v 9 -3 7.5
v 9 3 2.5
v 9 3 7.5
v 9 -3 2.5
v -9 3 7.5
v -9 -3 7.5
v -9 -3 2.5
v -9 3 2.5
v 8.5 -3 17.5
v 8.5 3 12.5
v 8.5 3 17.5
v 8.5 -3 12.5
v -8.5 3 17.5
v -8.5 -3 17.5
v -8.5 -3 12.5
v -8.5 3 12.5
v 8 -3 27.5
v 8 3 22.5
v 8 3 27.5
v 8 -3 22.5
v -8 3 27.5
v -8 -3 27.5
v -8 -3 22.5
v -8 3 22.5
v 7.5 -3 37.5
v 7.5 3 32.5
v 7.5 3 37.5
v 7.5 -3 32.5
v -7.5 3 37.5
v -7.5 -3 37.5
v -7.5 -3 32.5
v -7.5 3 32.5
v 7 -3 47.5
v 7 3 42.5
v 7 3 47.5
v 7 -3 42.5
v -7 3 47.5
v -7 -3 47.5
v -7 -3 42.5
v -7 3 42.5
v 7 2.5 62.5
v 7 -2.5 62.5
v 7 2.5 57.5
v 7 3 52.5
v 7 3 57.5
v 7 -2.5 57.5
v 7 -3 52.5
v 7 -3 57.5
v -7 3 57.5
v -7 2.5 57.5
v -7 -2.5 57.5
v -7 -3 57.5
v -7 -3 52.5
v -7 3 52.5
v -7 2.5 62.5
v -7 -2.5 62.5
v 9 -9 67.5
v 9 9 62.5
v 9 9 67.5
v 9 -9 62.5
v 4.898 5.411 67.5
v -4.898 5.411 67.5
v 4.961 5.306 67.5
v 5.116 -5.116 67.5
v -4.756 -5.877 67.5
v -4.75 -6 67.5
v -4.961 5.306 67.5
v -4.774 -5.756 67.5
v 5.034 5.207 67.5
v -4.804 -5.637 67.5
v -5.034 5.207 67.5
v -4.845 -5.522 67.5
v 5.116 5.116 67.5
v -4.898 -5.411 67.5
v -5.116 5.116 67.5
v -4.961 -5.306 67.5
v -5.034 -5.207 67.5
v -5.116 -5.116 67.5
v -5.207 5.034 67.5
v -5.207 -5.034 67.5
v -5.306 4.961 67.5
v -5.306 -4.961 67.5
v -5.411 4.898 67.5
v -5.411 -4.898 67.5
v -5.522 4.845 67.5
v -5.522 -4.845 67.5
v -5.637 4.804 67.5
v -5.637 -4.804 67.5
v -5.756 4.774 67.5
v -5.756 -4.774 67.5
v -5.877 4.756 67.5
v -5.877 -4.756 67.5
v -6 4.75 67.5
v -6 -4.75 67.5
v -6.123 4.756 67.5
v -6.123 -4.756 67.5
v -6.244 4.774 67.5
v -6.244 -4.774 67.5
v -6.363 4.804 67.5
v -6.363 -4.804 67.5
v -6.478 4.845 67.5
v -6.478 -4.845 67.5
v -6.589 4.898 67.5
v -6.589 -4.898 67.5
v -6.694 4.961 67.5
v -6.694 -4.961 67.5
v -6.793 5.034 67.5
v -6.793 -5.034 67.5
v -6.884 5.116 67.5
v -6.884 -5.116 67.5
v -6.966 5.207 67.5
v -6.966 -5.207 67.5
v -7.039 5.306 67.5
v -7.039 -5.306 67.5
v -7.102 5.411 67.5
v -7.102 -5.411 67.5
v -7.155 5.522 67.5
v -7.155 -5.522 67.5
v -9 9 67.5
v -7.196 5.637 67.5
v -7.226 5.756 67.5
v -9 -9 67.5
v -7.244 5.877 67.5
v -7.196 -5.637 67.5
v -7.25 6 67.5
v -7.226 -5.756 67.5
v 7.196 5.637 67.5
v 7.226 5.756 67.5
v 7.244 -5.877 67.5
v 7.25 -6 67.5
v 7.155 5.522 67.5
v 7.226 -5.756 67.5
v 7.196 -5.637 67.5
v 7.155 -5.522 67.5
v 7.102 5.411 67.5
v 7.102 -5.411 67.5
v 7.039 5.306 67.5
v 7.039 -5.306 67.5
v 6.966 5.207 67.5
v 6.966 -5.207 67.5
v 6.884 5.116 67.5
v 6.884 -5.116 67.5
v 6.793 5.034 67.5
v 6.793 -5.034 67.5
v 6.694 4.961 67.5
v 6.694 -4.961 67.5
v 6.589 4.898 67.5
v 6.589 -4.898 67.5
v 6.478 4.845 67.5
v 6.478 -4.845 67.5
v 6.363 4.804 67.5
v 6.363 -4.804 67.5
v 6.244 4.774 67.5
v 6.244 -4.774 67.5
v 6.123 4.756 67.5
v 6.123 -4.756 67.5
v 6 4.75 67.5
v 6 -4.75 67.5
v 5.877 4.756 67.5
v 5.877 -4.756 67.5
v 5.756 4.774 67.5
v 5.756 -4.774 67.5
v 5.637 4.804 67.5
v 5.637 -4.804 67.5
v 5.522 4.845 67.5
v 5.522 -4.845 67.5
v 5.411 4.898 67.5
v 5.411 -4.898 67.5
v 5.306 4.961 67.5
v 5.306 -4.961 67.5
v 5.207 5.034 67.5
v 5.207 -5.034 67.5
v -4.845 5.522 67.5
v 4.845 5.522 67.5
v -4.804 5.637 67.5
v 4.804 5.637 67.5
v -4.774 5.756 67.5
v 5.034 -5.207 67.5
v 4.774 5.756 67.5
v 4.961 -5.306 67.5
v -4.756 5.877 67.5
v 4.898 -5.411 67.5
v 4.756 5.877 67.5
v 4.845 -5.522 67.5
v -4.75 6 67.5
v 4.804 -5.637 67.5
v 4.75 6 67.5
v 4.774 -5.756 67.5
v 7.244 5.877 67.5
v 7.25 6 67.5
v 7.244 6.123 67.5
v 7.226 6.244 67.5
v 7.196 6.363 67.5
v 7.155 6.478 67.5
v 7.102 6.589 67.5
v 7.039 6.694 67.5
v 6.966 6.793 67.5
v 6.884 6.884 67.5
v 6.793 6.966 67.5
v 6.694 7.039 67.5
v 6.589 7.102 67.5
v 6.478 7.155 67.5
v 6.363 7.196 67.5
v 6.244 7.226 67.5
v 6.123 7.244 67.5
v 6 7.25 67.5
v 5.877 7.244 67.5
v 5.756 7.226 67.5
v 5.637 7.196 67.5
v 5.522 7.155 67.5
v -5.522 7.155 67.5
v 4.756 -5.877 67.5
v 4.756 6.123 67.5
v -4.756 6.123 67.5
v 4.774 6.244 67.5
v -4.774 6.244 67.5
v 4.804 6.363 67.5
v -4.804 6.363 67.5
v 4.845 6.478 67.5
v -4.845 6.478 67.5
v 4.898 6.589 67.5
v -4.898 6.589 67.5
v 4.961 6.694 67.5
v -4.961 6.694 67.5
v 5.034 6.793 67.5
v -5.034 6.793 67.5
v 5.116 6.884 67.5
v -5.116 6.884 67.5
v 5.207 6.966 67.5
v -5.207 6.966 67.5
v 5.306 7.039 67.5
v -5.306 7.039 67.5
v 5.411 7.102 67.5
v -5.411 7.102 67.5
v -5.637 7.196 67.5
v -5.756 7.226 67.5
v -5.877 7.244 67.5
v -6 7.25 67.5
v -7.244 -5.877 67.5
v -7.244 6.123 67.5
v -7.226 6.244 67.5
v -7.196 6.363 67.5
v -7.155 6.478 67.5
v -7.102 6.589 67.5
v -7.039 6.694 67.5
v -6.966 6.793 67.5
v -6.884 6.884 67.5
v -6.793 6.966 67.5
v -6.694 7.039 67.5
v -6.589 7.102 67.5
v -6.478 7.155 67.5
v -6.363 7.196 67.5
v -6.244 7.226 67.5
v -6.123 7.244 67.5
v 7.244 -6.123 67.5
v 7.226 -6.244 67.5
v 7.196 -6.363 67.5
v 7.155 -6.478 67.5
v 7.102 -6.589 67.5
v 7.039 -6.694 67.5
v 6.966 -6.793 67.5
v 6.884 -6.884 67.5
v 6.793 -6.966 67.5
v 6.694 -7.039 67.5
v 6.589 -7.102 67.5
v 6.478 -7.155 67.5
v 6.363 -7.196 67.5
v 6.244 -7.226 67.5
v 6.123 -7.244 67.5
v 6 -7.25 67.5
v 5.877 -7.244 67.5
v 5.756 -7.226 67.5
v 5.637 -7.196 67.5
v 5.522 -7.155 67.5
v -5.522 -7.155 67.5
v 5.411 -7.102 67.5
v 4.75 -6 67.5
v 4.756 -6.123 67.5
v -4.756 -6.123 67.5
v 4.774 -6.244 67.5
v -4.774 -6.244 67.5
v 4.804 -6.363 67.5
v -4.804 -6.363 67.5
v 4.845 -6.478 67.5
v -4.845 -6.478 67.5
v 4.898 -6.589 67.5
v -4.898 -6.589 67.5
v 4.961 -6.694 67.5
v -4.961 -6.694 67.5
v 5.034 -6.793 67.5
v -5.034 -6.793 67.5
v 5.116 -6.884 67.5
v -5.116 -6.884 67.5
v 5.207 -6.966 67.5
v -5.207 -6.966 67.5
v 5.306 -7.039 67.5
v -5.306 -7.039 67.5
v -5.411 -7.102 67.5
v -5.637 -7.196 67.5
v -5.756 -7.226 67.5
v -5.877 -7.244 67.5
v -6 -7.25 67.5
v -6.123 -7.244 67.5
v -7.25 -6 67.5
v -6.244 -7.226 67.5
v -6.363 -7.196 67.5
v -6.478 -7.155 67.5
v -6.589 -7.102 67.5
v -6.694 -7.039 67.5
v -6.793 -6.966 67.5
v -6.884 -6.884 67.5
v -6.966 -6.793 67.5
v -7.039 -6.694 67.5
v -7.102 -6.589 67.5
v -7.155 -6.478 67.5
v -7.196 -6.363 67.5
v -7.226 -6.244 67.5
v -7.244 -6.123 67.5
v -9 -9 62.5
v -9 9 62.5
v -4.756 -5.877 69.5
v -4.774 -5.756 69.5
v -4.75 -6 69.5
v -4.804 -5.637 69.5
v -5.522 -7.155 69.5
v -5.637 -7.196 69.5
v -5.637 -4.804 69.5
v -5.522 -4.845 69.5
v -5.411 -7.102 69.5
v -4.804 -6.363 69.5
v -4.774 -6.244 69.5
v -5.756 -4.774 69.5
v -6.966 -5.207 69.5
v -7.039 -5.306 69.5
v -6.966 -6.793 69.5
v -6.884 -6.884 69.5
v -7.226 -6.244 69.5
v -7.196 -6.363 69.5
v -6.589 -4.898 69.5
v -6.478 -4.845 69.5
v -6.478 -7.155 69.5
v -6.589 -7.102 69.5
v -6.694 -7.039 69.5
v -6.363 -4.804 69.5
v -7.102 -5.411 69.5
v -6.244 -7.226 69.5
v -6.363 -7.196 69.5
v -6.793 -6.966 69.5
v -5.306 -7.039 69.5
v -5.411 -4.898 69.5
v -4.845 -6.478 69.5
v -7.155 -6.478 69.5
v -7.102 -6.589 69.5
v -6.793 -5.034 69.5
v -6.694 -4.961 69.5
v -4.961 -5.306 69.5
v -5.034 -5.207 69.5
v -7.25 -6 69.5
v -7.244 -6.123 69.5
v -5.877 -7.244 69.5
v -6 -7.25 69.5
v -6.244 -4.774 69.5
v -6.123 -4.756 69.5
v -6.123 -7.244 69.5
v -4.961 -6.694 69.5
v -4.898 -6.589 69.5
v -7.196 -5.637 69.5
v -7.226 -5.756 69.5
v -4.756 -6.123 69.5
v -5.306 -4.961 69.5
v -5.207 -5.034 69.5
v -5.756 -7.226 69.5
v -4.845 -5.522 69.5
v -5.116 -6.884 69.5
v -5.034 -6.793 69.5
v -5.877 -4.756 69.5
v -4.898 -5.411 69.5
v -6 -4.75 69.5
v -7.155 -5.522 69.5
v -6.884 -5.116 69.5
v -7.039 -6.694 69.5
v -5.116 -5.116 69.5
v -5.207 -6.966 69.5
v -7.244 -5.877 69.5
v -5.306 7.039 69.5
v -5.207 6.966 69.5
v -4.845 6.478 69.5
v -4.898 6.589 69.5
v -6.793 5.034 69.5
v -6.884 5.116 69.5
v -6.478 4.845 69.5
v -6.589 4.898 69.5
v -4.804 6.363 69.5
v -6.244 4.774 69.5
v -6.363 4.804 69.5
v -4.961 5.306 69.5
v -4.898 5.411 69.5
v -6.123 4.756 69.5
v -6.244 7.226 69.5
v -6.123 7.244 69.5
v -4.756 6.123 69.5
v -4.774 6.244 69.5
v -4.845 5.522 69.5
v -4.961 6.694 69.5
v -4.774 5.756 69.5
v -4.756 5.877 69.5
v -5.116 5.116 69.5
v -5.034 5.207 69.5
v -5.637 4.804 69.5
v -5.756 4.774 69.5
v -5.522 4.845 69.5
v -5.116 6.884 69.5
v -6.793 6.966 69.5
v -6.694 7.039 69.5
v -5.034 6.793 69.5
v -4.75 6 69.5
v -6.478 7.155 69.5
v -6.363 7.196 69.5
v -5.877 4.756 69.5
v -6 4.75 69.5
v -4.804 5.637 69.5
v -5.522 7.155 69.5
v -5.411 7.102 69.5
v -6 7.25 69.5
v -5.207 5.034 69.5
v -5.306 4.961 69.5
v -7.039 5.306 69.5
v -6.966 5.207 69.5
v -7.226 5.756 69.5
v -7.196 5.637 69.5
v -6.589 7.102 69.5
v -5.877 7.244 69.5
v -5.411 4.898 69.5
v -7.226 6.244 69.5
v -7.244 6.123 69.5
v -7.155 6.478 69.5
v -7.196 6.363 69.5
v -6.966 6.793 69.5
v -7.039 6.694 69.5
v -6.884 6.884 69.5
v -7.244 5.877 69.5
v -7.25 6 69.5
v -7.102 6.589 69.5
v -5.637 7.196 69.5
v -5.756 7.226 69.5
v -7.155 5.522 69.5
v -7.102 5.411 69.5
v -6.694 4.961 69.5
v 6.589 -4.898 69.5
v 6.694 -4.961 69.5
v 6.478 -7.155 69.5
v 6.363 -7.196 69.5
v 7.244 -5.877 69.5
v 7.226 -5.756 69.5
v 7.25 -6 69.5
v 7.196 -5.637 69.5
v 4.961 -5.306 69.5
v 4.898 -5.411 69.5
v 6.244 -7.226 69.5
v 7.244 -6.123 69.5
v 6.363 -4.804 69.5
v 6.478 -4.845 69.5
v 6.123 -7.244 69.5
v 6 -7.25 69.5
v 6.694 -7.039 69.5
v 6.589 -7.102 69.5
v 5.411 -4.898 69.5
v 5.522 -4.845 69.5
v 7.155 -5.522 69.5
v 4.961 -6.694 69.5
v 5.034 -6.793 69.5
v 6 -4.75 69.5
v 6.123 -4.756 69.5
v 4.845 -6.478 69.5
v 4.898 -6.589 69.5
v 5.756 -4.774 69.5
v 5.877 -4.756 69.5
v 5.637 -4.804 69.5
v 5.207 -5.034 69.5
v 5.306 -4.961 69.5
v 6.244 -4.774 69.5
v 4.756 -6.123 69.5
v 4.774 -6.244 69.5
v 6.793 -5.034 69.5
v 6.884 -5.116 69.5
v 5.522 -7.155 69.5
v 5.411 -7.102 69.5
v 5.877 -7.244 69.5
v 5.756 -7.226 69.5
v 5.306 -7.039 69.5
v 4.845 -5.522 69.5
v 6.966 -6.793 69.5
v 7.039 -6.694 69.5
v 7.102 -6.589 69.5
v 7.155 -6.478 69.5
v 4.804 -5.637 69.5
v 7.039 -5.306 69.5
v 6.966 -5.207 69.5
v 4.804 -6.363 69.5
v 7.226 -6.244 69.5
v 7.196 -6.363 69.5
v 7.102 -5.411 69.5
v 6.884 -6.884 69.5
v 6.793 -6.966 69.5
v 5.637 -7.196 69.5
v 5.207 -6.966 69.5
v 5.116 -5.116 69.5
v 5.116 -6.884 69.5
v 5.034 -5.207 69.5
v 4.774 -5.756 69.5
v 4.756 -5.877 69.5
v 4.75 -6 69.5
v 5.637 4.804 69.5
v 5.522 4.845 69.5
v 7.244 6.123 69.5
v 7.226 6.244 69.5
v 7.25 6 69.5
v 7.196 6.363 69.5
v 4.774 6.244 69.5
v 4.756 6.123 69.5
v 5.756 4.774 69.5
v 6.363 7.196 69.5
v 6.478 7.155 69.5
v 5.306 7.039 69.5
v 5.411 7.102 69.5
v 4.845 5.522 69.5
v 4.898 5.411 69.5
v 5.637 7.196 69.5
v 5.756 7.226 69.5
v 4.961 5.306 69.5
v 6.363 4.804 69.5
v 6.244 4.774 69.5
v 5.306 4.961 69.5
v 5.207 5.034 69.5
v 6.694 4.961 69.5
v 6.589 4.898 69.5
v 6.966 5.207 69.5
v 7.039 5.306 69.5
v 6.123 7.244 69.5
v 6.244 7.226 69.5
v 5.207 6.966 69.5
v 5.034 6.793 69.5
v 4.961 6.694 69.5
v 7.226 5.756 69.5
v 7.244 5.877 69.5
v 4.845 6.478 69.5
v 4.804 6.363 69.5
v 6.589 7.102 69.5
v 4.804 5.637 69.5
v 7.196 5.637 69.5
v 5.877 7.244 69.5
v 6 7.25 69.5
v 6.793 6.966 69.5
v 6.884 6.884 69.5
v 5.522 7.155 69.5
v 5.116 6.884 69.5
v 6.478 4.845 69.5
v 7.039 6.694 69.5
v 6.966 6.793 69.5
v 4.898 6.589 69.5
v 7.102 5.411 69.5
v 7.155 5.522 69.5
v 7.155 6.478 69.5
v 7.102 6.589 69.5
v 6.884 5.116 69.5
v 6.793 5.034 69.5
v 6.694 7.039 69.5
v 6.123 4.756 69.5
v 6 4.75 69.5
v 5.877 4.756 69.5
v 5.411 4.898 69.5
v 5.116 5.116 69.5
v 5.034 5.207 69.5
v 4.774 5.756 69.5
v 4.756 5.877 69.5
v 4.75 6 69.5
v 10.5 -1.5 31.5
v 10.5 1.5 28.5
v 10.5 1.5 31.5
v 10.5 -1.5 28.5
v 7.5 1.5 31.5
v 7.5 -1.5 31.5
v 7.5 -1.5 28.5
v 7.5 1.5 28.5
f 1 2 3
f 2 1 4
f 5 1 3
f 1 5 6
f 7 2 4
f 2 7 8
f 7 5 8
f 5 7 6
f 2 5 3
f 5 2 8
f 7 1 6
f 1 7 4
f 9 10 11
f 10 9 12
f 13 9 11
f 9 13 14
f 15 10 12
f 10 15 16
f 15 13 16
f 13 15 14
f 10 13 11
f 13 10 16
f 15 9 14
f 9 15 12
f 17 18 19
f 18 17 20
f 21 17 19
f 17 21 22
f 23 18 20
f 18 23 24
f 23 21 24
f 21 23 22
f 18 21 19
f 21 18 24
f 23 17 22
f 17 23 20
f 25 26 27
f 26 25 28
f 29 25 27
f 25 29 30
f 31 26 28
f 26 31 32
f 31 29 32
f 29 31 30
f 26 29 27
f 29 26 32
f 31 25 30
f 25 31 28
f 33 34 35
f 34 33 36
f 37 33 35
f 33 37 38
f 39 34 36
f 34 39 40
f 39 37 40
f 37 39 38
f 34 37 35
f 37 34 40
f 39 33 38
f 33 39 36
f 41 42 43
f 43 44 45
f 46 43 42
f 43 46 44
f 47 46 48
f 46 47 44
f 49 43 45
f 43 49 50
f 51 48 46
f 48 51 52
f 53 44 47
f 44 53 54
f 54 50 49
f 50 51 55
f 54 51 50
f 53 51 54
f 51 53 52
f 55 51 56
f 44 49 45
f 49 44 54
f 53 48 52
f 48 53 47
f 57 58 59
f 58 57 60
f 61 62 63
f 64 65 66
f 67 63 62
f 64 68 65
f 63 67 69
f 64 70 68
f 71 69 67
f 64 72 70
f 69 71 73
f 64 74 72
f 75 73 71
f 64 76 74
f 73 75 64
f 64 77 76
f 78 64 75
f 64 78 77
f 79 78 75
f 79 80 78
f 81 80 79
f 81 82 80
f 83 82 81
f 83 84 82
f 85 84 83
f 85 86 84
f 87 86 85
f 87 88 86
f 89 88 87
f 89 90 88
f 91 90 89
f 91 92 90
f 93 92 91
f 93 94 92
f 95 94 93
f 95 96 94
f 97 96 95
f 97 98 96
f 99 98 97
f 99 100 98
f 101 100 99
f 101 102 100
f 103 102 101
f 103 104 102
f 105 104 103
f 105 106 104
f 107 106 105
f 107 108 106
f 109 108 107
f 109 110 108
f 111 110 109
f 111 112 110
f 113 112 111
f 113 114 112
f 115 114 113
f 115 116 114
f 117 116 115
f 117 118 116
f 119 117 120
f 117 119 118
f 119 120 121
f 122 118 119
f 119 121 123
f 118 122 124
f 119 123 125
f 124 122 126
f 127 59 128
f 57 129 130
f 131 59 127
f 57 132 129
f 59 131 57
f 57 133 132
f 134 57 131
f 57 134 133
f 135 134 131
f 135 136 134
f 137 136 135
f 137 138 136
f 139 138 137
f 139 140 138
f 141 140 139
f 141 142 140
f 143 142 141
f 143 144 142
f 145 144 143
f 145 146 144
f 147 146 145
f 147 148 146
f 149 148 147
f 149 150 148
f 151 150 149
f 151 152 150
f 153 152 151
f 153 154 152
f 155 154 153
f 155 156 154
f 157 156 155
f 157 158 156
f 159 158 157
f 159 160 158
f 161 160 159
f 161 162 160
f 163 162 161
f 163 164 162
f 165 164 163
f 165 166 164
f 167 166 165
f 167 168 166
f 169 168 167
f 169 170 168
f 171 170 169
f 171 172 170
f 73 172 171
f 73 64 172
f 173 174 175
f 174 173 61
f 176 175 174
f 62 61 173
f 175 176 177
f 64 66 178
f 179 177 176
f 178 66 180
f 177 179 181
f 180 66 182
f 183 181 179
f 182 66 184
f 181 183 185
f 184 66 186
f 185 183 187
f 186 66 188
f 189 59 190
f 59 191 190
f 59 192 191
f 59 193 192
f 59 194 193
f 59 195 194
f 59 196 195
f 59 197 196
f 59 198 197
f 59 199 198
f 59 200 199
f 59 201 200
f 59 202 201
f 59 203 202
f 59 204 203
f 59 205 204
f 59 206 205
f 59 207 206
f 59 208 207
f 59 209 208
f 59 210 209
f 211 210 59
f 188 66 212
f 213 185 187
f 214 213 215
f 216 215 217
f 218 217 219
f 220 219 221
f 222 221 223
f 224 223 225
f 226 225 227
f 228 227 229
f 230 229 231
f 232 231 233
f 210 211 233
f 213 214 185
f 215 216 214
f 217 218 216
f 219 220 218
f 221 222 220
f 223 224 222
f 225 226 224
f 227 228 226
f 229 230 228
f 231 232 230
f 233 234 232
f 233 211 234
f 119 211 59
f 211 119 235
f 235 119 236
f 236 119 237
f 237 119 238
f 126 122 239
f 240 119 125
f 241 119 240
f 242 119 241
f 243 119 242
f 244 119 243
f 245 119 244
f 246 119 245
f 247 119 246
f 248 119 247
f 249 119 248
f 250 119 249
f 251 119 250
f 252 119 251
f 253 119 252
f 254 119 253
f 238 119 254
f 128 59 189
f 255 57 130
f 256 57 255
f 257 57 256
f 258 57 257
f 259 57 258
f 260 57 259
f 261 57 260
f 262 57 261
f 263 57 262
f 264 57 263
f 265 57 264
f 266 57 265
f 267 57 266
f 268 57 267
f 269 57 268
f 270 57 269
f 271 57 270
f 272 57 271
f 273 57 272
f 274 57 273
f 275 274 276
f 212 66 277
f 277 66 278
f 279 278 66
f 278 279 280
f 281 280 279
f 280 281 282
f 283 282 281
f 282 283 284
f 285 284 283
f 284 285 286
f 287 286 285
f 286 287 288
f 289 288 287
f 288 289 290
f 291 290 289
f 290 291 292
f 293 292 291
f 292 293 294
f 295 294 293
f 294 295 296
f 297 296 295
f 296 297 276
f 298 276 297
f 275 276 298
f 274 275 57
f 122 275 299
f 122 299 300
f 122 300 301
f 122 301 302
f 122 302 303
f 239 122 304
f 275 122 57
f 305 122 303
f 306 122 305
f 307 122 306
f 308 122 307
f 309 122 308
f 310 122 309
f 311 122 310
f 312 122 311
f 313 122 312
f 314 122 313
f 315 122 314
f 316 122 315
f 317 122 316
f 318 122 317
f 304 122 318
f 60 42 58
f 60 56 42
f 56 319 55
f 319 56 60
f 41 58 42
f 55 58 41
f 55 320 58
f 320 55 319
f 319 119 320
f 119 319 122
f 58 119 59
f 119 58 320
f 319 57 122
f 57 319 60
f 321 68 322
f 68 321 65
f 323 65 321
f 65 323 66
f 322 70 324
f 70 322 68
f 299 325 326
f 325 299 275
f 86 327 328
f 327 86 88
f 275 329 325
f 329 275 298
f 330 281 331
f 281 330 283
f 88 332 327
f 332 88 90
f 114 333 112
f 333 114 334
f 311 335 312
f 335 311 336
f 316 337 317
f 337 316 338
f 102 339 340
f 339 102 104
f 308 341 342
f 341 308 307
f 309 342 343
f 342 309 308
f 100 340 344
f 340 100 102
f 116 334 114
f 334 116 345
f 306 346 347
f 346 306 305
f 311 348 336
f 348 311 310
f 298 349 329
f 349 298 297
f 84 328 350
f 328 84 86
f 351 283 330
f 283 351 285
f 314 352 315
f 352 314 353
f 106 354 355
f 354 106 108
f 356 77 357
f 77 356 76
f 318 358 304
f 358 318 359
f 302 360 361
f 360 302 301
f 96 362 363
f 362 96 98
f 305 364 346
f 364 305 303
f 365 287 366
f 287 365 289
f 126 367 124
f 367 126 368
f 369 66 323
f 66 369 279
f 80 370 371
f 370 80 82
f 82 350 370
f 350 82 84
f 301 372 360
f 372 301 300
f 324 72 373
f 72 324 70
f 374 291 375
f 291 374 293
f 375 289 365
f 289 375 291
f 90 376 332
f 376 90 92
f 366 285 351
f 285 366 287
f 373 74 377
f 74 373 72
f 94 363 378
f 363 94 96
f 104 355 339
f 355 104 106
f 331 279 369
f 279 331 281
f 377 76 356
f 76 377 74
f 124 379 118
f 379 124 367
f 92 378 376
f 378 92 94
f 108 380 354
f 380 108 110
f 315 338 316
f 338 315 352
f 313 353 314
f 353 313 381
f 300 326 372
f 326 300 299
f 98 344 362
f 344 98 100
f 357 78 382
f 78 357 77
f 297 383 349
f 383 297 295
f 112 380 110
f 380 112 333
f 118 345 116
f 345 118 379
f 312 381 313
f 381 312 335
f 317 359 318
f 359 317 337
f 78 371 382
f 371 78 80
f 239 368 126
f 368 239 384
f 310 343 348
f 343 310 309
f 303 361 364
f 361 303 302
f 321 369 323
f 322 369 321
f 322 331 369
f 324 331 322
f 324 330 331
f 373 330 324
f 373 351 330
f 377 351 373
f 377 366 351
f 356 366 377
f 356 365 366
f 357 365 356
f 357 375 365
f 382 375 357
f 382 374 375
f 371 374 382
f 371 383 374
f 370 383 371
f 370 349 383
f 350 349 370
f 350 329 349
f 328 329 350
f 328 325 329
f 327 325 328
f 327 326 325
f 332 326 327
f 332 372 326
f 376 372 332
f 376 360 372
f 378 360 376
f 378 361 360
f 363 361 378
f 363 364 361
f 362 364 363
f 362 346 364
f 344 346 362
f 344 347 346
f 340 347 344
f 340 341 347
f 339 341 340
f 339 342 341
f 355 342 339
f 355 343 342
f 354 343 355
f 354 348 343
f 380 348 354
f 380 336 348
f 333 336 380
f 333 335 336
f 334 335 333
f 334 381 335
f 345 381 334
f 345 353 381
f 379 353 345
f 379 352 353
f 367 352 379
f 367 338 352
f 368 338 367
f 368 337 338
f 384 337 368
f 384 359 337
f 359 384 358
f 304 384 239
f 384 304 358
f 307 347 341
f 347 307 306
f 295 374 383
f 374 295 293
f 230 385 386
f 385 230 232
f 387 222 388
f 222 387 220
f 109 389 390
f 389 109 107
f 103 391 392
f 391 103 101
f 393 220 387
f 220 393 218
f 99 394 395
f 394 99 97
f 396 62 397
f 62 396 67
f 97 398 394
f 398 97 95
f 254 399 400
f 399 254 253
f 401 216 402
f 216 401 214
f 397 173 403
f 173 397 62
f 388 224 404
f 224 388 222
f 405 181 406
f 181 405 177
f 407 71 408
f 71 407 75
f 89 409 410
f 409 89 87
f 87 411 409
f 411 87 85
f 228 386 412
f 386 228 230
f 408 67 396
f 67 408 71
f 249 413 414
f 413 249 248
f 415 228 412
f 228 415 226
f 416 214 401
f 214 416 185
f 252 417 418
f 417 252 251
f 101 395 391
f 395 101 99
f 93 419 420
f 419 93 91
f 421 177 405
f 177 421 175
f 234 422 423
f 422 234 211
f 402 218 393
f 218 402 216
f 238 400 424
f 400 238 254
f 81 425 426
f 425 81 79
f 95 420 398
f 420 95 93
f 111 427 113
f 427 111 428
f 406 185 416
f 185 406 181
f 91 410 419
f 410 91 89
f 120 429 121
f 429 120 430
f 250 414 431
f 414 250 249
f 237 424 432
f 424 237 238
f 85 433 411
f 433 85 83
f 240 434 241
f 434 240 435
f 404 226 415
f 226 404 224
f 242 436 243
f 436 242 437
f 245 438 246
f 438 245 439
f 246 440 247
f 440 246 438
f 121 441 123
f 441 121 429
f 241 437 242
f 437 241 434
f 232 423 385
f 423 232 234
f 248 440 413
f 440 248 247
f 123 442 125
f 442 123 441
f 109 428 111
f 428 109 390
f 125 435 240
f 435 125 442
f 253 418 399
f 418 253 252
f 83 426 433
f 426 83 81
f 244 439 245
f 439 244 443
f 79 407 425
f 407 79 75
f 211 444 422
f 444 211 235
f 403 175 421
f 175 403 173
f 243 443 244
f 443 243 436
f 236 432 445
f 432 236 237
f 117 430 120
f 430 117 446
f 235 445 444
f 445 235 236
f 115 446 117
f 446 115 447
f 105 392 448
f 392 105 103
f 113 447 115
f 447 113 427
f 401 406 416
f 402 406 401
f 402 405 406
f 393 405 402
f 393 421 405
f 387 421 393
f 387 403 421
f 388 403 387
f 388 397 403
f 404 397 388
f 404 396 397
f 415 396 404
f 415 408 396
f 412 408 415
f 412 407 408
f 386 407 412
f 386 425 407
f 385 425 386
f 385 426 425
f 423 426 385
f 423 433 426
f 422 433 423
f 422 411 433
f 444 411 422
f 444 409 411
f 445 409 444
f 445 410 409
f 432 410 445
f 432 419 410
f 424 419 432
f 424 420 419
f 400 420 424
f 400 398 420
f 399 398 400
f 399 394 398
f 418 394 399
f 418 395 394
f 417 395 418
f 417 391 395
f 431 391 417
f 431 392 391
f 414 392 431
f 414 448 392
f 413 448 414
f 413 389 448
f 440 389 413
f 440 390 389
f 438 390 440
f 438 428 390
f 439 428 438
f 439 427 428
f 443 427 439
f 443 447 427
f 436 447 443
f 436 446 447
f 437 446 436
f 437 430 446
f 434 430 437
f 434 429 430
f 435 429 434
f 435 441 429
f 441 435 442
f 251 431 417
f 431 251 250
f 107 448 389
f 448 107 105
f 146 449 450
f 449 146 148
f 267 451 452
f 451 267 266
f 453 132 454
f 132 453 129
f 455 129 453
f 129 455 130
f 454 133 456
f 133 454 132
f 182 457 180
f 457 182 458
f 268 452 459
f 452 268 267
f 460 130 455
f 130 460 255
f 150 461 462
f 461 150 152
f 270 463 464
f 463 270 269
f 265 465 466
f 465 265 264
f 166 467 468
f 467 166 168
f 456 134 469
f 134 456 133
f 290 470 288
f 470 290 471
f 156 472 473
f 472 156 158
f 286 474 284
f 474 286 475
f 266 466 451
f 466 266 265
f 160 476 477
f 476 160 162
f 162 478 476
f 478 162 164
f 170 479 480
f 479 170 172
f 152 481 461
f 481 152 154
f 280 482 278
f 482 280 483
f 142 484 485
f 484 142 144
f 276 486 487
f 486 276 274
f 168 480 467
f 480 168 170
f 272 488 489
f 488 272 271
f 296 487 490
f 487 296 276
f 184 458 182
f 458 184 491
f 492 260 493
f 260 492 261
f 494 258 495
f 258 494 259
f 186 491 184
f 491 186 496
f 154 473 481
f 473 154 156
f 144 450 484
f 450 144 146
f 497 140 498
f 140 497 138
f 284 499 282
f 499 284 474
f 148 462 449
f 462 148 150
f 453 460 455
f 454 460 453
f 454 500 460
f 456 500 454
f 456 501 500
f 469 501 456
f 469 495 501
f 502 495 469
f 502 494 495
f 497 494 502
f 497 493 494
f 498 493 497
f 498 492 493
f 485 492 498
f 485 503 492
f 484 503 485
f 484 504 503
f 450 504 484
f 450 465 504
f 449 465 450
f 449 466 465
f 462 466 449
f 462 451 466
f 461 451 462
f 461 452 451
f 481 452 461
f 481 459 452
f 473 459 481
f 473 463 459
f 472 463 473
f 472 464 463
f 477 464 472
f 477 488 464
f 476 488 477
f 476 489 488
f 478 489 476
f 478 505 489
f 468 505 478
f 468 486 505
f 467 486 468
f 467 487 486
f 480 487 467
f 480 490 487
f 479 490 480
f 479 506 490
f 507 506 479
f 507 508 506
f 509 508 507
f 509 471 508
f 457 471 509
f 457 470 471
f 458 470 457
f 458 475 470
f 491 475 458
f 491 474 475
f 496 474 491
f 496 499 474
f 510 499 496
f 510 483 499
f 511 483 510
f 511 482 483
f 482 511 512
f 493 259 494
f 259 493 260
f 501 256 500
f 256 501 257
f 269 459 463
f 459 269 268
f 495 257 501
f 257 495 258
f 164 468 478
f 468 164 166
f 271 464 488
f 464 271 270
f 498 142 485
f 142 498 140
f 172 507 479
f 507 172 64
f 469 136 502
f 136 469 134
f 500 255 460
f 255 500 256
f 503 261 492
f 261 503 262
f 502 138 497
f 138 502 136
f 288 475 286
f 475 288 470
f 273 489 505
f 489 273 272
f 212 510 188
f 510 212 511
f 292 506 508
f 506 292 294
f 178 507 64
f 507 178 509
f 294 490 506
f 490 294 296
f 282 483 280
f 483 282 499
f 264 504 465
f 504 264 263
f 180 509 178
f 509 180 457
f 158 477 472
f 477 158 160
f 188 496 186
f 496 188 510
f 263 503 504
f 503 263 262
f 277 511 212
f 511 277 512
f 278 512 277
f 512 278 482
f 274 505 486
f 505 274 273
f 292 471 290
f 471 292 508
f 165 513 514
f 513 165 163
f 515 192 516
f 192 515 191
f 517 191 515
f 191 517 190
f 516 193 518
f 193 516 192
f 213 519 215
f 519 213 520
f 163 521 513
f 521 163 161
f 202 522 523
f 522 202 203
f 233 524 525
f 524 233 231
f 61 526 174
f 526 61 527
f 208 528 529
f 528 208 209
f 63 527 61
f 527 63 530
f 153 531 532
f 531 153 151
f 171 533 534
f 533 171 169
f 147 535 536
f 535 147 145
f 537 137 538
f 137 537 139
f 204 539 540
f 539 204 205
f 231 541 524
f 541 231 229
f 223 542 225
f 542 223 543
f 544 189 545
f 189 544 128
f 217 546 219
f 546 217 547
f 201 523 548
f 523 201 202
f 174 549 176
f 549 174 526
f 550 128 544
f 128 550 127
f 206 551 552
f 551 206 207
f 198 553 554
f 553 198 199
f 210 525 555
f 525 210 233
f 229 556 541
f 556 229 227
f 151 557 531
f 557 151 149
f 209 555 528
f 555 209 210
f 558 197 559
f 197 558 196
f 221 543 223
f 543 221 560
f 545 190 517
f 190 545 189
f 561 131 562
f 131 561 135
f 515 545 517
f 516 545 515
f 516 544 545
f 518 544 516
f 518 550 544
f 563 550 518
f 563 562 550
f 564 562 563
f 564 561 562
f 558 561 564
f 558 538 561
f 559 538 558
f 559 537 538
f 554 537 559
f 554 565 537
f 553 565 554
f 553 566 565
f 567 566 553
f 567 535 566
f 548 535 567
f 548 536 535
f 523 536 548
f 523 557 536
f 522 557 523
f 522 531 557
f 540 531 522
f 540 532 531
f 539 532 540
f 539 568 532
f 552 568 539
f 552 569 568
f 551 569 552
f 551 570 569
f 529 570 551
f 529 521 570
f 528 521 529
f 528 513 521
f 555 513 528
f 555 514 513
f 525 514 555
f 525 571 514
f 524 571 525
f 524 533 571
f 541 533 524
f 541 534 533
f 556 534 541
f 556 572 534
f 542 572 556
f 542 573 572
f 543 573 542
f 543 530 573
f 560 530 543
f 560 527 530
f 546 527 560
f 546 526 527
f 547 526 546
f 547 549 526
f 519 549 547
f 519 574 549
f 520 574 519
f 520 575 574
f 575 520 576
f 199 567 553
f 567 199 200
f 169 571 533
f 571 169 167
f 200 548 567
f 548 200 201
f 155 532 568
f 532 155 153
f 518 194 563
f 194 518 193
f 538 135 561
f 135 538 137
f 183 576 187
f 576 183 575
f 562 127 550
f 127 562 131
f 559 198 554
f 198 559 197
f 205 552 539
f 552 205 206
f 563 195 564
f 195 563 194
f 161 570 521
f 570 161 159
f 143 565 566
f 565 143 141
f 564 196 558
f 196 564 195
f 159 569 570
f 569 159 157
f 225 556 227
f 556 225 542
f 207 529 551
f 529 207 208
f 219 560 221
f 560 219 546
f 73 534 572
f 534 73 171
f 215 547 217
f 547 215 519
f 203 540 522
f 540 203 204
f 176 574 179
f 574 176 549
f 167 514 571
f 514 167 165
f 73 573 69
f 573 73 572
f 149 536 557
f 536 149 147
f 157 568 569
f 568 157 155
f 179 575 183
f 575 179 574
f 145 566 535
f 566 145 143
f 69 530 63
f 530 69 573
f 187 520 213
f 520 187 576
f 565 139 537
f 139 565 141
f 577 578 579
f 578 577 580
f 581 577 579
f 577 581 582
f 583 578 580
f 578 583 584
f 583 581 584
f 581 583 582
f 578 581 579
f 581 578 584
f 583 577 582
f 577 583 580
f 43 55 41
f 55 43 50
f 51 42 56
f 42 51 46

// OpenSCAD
// 07_ArmFolded.scad - 折叠臂（折叠位置）
// 折叠角度: 90度向上（相对于展开位置）
// 用于验证折叠后尺寸: 90×60×30mm
$fn = 64;
COLOR_FRAME  = [0.12, 0.12, 0.14];
COLOR_ORANGE = [0.90, 0.40, 0.02];

// 臂身（垂直向上折叠）
color(COLOR_FRAME) {
    // 分段叠加（近似锥形）
    translate([0, 0, 5])
        cube([18, 6, 5], center=true);
    translate([0, 0, 15])
        cube([17, 6, 5], center=true);
    translate([0, 0, 25])
        cube([16, 6, 5], center=true);
    translate([0, 0, 35])
        cube([15, 6, 5], center=true);
    translate([0, 0, 45])
        cube([14, 6, 5], center=true);
    translate([0, 0, 55])
        cube([14, 6, 5], center=true);
    // 电机平台
    translate([0, 0, 65])
        cube([18, 18, 5], center=true);
}

// 折叠状态定位孔（与中央舱配合）
translate([9, 0, 30])
    cube([3, 3, 3], center=true);

// 折叠锁扣
color(COLOR_ORANGE)
translate([0, 0, 60])
    cube([14, 5, 5], center=true);

// 电机安装孔
for (x = [-6, 6])
    for (y = [-6, 6])
        translate([x, y, 66])
            cylinder(r=1.25, h=7, center=true);
